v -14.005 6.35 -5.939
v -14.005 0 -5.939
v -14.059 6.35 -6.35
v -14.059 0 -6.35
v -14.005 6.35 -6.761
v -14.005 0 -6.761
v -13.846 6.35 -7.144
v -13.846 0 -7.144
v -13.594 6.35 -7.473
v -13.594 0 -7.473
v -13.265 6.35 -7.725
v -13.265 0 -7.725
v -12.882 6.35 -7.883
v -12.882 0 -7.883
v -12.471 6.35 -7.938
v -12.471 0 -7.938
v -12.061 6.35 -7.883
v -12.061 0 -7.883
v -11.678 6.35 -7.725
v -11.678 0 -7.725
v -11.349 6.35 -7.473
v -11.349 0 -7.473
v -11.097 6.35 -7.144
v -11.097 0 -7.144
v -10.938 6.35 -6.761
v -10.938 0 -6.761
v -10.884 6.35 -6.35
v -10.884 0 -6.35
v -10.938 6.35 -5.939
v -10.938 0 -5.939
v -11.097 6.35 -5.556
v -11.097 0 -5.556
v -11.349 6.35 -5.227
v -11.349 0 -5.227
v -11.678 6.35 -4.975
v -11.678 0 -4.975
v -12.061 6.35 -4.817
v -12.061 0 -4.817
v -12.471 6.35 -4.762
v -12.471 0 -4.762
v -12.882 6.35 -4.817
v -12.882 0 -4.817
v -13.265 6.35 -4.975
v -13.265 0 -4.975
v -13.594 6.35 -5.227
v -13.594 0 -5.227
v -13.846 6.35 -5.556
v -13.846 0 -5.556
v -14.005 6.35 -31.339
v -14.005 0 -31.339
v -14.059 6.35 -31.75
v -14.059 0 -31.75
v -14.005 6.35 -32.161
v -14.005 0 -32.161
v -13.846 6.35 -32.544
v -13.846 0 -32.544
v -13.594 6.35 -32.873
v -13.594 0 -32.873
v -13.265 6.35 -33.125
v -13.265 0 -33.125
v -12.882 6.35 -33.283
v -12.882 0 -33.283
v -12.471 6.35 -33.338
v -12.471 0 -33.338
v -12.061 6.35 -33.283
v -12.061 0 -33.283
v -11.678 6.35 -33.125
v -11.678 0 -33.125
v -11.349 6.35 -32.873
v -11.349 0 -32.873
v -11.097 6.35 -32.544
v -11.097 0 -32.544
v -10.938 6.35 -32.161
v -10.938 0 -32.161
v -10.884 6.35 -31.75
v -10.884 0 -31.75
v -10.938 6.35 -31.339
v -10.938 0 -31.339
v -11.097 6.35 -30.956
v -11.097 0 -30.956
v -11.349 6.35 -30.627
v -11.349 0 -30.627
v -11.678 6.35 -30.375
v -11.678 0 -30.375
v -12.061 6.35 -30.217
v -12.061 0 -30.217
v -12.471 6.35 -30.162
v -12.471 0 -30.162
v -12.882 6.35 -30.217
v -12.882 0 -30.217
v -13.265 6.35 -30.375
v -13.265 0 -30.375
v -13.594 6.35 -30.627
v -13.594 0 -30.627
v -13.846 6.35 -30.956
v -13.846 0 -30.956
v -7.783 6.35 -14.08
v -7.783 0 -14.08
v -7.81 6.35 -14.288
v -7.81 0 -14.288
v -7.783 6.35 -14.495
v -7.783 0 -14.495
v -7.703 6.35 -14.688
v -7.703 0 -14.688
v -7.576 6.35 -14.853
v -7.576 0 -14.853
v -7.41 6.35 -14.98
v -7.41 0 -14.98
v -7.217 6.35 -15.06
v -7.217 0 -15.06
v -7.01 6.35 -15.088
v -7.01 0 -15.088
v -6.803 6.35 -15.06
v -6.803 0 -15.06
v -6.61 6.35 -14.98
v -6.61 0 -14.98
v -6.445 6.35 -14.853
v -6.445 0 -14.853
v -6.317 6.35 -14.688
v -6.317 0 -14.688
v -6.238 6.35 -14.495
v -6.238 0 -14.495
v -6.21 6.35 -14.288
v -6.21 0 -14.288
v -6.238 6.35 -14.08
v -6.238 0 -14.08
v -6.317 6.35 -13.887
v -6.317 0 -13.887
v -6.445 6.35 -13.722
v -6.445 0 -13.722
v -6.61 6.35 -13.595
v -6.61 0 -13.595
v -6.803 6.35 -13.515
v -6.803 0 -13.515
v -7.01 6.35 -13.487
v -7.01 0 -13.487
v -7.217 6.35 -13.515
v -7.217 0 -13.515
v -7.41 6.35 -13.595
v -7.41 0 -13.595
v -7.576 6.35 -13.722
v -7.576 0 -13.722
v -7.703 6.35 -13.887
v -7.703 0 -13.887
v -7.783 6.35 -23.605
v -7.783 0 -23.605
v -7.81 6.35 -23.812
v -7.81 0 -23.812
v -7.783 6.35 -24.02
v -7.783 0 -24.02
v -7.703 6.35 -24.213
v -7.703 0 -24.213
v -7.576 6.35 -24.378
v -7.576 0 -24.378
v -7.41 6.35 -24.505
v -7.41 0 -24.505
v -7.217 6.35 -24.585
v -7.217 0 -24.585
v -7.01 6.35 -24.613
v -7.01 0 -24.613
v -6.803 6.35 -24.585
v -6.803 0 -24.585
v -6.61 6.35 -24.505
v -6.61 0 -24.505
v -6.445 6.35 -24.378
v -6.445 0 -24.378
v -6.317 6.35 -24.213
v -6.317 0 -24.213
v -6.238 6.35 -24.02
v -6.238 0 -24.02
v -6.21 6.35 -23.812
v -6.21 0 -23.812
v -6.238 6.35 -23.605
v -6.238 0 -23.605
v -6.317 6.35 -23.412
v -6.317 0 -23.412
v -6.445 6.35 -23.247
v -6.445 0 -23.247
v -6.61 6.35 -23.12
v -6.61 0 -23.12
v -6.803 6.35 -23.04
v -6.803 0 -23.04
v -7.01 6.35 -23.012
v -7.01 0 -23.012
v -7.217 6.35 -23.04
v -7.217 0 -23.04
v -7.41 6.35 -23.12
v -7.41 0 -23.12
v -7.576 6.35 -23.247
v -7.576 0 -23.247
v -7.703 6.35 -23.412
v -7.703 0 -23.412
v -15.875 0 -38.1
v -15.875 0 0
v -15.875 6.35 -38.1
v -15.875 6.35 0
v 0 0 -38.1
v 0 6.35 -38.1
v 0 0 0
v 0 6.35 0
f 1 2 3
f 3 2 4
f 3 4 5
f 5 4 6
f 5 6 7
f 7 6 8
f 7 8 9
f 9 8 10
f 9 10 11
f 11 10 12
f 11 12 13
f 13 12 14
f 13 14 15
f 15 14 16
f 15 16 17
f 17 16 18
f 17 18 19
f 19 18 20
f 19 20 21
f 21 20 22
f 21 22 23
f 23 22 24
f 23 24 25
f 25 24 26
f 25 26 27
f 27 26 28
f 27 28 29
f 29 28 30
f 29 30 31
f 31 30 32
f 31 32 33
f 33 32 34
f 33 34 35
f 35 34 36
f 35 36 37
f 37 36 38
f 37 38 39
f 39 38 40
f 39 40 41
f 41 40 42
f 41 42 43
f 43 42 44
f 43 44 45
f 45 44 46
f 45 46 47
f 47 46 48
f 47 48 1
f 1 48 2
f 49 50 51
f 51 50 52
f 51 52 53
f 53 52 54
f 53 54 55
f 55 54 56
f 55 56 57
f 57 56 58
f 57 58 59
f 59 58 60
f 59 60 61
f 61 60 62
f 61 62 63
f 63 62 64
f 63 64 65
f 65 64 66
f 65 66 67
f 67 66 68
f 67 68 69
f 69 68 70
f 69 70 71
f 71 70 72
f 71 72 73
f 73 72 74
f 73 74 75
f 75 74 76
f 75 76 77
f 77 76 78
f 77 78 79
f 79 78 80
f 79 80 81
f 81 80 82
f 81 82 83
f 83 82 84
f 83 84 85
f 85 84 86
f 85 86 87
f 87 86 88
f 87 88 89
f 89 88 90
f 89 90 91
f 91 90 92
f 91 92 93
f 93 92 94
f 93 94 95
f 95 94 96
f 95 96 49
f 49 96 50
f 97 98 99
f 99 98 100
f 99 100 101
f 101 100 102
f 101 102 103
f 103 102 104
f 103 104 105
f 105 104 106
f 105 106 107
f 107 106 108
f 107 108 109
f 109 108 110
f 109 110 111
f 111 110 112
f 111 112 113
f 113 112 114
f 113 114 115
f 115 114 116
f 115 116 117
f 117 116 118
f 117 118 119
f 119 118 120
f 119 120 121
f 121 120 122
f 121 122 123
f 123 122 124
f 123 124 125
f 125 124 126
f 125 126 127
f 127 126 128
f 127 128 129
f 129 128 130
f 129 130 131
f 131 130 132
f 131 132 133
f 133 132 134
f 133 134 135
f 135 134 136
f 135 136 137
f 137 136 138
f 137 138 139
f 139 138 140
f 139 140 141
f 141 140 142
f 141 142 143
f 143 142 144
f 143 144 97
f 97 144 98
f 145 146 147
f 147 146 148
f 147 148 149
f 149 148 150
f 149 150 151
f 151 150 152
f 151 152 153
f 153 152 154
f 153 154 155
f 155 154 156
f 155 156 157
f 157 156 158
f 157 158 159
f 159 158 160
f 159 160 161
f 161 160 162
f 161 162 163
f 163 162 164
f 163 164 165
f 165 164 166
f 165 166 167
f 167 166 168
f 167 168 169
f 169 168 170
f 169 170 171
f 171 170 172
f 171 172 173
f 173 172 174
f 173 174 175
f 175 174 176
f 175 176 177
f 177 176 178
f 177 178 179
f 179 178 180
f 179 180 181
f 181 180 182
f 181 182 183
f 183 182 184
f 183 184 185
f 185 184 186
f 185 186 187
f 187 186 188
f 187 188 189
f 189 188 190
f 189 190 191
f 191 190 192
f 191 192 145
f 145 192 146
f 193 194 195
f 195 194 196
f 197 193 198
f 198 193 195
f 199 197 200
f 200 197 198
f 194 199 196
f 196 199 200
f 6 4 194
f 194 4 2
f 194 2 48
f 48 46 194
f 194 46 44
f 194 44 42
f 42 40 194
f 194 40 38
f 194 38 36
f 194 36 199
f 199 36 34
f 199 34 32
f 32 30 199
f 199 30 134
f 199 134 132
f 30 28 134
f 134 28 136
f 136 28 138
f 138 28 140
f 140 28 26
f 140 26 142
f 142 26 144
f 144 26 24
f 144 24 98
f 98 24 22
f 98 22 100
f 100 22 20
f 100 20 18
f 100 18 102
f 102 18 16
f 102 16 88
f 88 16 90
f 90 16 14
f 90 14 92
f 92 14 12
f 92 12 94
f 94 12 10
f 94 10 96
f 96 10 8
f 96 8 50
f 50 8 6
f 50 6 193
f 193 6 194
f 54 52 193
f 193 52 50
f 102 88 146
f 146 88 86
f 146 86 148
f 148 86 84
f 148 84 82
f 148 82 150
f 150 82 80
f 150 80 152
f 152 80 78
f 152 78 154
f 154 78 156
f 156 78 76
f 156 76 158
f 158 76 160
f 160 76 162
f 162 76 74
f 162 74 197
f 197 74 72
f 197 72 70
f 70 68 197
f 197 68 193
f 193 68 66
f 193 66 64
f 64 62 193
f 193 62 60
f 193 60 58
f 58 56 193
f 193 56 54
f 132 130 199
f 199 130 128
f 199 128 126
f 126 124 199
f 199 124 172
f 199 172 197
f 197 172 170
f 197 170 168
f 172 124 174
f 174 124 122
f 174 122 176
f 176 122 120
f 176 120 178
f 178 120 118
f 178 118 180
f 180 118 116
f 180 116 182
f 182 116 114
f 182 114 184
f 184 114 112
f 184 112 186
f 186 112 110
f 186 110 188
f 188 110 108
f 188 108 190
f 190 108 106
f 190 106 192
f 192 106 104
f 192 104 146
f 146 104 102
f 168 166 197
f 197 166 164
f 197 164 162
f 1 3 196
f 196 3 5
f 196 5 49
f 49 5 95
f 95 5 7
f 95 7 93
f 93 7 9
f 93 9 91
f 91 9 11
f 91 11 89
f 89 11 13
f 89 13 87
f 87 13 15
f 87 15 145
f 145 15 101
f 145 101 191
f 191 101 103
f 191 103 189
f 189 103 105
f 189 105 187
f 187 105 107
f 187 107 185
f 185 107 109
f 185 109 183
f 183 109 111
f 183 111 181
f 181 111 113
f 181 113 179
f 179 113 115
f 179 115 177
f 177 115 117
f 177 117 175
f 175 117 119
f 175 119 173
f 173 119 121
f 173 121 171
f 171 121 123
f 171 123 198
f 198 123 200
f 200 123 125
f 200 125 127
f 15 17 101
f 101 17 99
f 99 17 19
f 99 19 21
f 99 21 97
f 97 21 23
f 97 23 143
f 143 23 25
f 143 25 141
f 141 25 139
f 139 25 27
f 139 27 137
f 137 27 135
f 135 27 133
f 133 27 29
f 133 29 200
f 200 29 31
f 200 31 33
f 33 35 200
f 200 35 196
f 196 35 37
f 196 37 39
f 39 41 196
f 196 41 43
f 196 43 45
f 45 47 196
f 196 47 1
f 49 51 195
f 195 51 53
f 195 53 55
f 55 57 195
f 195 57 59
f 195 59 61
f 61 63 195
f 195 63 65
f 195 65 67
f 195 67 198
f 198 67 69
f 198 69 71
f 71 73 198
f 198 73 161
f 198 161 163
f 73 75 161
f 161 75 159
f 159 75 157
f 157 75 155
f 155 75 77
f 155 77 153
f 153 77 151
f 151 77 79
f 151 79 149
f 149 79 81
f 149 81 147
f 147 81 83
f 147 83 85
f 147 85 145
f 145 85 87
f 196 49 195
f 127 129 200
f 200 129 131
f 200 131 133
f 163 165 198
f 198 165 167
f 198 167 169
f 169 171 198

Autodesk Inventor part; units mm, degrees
ref_plane "YZ Plane" through (0, 0, 0) normal (1, 0, 0) x (0, 1, 0)
ref_plane "XZ Plane" through (0, 0, 0) normal (0, 1, 0) x (-1, 0, 0)
ref_plane "XY Plane" through (0, 0, 0) normal (0, 0, 1) x (1, 0, 0)
sketch "Sketch1" plane through (0, 0, 0) normal (0, 1, 0) x (-1, 0, 0)
  line L0 (0, 0) -> (15.875, 0)
  line L1 (15.875, 0) -> (15.875, -38.1)
  line L2 (15.875, -38.1) -> (0, -38.1)
  line L3 (0, -38.1) -> (0, 0)
  line L4 (0, -19.05) -> (7.6962, -19.05) construction
  line L5 (7.6962, -19.05) -> (12.4714, -19.05) construction
  line L6 (12.4714, -19.05) -> (12.4714, -31.75) construction
  circle A0 centre (12.4714, -31.75) radius 1.5875
  line L7 (7.6962, -19.05) -> (7.0104, -19.05) construction
  line L8 (7.0104, -19.05) -> (7.0104, -23.8125) construction
  circle A1 centre (7.0104, -23.8125) radius 0.8001
  circle A2 centre (12.4714, -6.35) radius 1.5875
  circle A3 centre (7.0104, -14.2875) radius 0.8001
  dimension "d0" = 15.875
  dimension "d1" = 38.1
  dimension "d2" = 7.6962
  dimension "d3" = 4.7752
  dimension "d4" = 12.7
  dimension "d5" = 3.175
  dimension "d7" = 4.7625
  dimension "d8" = 1.6002
  dimension "d11" = 7.0104
extrude "Extrusion1" add sketch "Sketch1" along normal blind 6.35
properties part number "limitSwitchMount"
